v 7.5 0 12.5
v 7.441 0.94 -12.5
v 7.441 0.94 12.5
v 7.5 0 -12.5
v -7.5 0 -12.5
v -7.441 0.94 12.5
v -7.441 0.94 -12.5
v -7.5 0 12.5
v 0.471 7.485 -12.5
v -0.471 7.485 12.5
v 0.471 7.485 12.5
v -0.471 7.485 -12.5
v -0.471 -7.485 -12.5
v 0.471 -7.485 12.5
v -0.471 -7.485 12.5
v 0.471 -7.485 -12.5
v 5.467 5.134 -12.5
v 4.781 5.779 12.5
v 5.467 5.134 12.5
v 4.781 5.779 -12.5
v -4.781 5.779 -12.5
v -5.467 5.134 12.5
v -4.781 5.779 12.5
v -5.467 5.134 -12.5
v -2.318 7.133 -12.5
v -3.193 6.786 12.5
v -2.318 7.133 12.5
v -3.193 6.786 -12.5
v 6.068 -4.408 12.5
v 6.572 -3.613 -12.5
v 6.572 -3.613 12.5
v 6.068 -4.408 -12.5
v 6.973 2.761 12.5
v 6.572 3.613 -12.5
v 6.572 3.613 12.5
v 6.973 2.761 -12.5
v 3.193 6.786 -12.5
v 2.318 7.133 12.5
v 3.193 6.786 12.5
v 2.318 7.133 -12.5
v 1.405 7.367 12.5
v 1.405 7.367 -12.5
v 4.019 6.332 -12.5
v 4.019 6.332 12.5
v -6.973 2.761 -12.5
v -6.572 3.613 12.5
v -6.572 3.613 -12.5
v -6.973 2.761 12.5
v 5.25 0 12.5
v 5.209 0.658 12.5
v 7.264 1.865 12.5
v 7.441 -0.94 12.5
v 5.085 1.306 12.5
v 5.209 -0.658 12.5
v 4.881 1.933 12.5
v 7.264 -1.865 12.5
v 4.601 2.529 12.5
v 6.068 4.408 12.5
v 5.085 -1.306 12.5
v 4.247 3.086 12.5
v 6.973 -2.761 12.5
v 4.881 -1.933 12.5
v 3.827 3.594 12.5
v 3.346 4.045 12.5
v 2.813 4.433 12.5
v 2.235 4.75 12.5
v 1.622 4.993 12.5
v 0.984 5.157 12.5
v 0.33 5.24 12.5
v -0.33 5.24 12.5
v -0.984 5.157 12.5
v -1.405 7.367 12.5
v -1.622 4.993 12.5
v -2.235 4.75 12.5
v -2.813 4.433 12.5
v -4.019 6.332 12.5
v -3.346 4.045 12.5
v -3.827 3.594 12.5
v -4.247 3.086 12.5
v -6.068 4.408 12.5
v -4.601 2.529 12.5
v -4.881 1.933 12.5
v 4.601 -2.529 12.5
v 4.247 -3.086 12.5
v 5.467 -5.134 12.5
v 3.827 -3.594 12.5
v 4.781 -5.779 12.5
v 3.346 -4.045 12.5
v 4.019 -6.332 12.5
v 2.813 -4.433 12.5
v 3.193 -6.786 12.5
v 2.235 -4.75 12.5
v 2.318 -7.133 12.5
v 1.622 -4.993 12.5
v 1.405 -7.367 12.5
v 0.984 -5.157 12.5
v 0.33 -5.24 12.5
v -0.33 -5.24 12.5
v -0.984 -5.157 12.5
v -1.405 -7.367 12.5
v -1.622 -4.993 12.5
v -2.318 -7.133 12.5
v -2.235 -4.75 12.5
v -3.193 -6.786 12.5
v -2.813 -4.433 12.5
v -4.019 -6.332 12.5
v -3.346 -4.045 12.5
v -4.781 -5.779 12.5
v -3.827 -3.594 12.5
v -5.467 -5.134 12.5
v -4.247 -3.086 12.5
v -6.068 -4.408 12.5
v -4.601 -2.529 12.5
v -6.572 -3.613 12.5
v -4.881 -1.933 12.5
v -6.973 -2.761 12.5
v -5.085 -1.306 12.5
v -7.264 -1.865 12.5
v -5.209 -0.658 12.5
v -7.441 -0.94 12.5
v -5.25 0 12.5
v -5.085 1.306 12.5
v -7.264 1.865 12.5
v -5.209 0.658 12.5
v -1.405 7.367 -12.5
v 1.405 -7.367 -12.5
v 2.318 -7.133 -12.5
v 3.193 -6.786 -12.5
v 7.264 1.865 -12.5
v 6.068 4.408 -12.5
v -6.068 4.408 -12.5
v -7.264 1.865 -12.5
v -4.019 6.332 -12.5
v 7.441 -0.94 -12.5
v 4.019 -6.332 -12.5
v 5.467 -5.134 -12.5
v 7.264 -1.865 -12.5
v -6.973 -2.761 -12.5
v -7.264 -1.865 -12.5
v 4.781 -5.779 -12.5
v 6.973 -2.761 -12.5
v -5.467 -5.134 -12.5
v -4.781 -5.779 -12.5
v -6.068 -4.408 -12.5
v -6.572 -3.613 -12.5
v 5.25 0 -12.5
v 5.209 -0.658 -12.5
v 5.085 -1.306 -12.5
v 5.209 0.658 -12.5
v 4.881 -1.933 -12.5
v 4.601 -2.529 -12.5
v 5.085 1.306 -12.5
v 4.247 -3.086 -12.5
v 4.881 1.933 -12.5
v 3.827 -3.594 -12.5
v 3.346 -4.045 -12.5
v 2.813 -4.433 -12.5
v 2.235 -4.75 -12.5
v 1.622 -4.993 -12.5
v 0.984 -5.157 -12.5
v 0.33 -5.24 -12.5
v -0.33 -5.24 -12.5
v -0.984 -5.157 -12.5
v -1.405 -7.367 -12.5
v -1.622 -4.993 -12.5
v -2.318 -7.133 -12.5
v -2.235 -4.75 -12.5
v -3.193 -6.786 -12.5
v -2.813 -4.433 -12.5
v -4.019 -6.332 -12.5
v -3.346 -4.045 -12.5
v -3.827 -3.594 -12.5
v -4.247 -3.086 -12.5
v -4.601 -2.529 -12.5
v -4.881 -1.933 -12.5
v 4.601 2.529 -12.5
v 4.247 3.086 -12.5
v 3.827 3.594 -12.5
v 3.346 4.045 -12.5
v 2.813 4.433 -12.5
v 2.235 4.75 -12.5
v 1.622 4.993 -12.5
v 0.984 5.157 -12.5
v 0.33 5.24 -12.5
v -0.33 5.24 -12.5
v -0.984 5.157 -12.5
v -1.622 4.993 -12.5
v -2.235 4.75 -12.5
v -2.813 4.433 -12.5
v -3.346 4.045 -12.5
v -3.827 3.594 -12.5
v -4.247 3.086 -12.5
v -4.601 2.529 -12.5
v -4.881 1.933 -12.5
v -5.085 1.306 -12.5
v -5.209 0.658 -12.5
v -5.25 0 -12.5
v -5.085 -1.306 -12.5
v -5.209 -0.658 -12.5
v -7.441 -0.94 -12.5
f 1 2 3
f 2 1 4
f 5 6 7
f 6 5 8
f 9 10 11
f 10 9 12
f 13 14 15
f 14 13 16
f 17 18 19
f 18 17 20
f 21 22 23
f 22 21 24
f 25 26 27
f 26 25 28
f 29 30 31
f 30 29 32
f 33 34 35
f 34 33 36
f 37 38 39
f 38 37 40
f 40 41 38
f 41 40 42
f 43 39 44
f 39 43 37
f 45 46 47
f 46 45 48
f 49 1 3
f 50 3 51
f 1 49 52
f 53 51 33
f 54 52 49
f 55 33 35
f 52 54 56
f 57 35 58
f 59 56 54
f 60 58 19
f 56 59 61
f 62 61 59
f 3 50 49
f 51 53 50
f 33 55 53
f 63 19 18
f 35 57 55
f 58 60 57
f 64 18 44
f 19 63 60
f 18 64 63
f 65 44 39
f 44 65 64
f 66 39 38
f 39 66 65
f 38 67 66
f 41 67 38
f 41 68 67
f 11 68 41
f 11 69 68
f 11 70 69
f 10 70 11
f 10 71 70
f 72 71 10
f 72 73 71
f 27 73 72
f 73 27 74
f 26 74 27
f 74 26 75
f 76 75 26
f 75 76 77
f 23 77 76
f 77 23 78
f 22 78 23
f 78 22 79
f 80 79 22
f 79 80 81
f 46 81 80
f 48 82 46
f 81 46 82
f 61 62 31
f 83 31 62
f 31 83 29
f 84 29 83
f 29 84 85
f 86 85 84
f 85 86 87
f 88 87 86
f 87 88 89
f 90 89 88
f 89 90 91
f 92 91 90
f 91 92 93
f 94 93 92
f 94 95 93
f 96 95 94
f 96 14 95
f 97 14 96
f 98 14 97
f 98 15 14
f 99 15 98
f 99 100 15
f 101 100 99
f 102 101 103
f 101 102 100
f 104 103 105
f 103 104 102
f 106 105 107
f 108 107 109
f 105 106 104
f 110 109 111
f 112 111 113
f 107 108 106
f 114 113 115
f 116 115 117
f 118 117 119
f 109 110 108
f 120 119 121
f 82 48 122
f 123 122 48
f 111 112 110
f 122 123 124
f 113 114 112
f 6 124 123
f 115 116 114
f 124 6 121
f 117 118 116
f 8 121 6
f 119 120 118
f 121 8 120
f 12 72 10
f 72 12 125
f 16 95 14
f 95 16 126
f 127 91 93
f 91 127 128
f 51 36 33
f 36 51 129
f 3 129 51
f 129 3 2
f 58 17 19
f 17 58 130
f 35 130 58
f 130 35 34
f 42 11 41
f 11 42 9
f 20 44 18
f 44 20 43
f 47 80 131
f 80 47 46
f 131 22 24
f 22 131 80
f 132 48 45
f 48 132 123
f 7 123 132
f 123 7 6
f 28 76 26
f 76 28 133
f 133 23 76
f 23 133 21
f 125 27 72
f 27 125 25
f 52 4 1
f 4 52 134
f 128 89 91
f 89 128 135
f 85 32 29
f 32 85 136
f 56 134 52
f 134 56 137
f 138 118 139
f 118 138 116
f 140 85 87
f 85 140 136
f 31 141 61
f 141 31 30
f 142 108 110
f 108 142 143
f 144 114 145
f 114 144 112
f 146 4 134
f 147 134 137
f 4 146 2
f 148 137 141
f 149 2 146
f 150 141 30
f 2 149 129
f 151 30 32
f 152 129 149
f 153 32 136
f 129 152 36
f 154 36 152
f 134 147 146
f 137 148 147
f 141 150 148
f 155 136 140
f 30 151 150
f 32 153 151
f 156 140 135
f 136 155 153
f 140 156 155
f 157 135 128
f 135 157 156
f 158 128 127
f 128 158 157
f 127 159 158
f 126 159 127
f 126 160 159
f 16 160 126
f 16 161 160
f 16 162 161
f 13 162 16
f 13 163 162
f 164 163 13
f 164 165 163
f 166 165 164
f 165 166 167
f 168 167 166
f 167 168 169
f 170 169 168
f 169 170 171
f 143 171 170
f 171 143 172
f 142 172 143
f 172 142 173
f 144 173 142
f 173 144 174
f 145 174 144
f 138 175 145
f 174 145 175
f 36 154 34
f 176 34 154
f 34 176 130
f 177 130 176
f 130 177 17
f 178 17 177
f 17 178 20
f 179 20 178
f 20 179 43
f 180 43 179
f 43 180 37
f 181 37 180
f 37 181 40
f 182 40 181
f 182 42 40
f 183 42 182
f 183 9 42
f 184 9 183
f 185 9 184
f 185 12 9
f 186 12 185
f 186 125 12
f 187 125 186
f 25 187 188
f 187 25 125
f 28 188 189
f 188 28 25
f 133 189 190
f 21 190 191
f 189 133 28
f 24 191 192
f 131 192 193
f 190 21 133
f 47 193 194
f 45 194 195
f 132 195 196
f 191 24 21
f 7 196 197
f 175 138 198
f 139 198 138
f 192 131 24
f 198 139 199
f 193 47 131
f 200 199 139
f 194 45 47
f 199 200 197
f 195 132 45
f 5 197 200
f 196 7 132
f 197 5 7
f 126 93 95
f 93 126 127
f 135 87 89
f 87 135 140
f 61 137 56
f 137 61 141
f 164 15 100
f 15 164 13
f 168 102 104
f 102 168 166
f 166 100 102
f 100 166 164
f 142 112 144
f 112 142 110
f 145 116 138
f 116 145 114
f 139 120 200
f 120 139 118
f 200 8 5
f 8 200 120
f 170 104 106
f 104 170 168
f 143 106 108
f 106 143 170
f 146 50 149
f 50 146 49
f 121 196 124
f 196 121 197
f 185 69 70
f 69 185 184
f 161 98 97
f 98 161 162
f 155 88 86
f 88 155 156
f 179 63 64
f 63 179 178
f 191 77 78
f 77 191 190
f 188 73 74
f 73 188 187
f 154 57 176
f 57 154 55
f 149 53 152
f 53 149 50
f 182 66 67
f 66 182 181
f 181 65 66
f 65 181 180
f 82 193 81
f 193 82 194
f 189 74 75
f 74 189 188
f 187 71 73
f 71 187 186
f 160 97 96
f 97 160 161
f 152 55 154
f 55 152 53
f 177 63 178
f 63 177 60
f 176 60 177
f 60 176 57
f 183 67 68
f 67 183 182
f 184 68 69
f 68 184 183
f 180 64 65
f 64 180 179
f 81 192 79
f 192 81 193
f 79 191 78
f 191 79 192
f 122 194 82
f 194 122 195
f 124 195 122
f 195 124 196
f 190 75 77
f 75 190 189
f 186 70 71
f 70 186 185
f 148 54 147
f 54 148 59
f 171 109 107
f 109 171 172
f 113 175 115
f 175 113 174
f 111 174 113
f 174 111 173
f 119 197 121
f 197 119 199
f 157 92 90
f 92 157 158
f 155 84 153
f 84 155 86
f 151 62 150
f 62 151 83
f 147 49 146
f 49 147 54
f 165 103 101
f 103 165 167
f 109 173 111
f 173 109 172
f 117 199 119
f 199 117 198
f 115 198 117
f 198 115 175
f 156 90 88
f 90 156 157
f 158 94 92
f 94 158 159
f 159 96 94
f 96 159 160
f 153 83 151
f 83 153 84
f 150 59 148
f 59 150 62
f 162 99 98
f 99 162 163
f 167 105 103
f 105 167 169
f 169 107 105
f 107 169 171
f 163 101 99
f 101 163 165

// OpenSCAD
$fn = 50;


difference() {
	union() {
		translate(v = [0, 0, -12.5000000000]) {
			cylinder(h = 25, r = 7.5000000000);
		}
	}
	union() {
		translate(v = [0, 0, -100.0000000000]) {
			cylinder(h = 200, r = 5.2500000000);
		}
	}
}
